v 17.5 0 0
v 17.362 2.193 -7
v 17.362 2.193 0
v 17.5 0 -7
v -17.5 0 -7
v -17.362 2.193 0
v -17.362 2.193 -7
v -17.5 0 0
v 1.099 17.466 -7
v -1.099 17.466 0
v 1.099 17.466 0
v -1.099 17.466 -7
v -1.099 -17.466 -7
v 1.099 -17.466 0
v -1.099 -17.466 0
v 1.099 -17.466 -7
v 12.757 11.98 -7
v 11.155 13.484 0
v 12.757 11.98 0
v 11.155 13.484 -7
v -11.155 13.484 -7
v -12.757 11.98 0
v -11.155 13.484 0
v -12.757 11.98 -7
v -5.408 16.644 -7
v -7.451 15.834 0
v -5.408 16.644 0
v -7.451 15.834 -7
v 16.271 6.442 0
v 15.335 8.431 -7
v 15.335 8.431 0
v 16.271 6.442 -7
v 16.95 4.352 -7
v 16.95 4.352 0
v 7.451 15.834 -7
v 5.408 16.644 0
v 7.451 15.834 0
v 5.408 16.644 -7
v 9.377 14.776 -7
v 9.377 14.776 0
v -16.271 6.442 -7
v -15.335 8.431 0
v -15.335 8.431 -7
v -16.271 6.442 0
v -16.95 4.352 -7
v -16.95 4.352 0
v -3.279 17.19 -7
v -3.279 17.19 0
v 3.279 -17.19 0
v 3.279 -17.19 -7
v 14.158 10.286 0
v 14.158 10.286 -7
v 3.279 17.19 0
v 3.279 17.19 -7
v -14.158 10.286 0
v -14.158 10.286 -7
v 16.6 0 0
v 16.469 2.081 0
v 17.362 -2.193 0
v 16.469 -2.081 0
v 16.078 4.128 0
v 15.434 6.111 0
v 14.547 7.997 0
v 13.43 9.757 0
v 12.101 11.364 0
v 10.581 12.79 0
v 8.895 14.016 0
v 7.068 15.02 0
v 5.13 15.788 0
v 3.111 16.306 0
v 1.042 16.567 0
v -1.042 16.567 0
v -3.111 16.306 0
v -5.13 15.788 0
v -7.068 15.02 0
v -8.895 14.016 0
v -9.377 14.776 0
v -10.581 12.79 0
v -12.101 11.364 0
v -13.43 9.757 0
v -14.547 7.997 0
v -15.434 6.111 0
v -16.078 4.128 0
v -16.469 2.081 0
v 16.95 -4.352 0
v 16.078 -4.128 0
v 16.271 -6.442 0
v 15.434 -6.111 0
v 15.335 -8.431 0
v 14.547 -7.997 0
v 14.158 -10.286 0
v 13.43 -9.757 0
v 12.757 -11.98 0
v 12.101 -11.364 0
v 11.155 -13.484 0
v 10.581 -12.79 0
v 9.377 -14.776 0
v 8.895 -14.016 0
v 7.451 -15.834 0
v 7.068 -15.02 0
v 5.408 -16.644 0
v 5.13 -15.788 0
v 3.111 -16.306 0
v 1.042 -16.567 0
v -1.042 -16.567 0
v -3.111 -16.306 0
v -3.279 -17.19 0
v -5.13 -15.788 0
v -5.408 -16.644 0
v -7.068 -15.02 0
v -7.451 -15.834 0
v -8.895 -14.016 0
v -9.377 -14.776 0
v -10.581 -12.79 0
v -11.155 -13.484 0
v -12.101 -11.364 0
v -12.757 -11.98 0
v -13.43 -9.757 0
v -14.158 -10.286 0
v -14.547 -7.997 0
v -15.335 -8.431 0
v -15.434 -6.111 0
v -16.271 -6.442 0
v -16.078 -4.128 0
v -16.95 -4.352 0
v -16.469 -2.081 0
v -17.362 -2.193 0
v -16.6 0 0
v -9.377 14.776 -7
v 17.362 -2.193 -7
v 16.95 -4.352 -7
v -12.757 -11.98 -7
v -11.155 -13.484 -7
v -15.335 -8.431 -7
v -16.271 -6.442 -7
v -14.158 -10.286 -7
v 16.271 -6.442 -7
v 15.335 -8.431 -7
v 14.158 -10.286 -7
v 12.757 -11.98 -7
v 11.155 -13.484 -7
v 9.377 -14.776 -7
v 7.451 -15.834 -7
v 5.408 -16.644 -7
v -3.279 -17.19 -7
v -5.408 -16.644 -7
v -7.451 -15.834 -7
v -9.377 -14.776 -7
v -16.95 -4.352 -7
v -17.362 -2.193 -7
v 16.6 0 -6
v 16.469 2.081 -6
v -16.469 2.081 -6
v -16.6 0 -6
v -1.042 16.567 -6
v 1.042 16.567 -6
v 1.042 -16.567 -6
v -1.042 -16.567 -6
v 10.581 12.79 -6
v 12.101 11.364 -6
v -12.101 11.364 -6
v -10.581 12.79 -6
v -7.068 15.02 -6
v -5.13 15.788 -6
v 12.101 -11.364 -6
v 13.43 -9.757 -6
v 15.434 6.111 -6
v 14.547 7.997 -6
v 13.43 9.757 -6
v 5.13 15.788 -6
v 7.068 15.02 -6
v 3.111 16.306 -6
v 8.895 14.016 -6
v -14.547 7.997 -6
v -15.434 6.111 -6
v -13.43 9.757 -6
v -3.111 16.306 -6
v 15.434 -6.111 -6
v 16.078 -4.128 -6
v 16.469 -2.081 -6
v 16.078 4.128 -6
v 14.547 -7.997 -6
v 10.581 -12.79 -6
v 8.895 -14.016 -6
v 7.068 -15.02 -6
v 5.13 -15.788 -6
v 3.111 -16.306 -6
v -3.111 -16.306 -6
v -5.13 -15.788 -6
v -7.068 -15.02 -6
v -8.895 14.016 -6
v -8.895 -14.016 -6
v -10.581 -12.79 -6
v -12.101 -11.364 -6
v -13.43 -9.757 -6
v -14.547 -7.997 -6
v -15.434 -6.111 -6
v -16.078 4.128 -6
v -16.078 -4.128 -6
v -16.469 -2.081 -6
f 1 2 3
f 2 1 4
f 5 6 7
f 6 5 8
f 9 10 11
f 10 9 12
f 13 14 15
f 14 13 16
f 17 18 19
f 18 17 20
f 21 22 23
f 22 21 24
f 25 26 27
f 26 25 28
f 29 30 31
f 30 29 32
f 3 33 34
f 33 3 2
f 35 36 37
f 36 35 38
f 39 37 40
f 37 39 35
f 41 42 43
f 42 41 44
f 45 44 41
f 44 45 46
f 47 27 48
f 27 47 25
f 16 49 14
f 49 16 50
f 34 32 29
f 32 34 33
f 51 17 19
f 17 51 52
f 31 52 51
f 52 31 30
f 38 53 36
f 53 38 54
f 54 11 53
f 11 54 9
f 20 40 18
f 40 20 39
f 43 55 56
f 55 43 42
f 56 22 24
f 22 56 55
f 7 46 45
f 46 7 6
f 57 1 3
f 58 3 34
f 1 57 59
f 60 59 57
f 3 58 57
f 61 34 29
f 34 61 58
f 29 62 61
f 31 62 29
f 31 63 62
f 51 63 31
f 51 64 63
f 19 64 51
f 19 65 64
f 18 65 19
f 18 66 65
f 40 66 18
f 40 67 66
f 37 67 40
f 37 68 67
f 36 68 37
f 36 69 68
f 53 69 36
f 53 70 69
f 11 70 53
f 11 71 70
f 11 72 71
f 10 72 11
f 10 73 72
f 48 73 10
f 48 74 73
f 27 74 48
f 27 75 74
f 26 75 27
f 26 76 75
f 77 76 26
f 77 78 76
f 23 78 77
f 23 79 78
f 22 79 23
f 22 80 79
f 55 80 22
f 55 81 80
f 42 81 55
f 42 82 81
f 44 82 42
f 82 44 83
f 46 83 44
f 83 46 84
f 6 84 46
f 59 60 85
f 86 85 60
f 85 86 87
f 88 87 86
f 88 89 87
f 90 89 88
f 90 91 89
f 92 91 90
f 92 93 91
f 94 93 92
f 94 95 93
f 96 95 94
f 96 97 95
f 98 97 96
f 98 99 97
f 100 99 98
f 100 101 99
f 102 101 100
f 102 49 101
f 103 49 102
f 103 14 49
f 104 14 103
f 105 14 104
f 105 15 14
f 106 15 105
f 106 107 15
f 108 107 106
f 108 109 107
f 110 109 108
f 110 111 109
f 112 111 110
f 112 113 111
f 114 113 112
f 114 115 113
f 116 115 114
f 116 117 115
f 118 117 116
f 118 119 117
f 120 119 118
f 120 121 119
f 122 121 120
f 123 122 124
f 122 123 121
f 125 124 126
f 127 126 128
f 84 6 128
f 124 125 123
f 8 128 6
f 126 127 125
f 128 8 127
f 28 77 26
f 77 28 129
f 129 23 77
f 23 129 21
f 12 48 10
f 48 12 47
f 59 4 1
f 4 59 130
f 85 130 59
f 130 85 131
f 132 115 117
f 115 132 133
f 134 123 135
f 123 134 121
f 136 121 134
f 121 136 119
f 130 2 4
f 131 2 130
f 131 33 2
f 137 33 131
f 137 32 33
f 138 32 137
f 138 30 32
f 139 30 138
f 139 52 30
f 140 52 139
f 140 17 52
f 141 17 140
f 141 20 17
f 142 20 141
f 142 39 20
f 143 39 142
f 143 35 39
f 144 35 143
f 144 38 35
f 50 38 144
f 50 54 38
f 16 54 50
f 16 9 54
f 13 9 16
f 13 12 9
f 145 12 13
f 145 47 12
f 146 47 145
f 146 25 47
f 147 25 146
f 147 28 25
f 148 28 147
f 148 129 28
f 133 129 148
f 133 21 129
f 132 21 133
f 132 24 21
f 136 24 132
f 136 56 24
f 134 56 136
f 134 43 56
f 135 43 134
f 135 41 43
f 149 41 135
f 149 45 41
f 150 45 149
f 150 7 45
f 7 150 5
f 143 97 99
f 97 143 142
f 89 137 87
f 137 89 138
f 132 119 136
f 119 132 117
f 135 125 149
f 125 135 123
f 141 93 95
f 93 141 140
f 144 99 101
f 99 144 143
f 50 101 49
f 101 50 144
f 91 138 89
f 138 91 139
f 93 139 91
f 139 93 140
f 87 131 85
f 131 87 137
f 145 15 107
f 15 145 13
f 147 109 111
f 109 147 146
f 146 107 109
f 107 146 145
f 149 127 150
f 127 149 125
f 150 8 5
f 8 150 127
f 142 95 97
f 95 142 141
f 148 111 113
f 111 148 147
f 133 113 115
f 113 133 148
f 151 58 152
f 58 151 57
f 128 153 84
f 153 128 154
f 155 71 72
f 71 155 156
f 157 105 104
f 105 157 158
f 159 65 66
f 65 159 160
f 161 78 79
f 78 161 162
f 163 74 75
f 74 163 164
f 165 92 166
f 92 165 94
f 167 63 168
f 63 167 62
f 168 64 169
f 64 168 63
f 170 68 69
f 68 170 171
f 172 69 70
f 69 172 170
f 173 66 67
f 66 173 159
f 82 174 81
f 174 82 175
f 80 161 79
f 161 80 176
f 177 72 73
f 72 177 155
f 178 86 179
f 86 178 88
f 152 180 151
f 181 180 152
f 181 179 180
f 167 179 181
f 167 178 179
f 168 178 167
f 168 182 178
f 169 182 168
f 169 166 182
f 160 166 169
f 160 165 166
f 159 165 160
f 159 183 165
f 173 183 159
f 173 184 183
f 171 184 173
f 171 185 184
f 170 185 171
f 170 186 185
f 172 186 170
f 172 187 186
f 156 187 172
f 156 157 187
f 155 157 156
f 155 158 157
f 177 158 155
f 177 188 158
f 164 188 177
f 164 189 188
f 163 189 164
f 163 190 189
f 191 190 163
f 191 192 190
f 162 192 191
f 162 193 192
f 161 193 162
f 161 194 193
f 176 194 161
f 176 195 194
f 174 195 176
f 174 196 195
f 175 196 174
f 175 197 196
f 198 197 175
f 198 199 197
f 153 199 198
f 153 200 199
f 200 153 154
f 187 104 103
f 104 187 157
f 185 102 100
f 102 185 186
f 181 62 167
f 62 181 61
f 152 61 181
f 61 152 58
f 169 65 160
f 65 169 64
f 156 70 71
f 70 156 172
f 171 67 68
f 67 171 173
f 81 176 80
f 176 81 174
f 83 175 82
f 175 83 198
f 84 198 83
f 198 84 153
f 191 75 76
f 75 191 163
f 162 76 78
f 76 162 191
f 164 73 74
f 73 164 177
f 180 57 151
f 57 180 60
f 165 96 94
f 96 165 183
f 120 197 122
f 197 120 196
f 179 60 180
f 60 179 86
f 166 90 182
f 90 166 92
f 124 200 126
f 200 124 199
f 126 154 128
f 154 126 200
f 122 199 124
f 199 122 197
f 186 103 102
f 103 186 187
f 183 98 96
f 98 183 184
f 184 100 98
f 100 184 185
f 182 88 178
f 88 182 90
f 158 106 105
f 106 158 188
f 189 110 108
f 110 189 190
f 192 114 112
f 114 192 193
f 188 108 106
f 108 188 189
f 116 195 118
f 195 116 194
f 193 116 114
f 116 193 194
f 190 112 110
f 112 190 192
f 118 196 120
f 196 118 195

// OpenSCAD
$fn = 50;


difference() {
	union() {
		translate(v = [0, 0, -7.0000000000]) {
			cylinder(h = 7, r = 17.5000000000);
		}
	}
	union() {
		#translate(v = [0, 0, -6.0000000000]) {
			cylinder(h = 6, r = 16.6000000000);
		}
	}
}
